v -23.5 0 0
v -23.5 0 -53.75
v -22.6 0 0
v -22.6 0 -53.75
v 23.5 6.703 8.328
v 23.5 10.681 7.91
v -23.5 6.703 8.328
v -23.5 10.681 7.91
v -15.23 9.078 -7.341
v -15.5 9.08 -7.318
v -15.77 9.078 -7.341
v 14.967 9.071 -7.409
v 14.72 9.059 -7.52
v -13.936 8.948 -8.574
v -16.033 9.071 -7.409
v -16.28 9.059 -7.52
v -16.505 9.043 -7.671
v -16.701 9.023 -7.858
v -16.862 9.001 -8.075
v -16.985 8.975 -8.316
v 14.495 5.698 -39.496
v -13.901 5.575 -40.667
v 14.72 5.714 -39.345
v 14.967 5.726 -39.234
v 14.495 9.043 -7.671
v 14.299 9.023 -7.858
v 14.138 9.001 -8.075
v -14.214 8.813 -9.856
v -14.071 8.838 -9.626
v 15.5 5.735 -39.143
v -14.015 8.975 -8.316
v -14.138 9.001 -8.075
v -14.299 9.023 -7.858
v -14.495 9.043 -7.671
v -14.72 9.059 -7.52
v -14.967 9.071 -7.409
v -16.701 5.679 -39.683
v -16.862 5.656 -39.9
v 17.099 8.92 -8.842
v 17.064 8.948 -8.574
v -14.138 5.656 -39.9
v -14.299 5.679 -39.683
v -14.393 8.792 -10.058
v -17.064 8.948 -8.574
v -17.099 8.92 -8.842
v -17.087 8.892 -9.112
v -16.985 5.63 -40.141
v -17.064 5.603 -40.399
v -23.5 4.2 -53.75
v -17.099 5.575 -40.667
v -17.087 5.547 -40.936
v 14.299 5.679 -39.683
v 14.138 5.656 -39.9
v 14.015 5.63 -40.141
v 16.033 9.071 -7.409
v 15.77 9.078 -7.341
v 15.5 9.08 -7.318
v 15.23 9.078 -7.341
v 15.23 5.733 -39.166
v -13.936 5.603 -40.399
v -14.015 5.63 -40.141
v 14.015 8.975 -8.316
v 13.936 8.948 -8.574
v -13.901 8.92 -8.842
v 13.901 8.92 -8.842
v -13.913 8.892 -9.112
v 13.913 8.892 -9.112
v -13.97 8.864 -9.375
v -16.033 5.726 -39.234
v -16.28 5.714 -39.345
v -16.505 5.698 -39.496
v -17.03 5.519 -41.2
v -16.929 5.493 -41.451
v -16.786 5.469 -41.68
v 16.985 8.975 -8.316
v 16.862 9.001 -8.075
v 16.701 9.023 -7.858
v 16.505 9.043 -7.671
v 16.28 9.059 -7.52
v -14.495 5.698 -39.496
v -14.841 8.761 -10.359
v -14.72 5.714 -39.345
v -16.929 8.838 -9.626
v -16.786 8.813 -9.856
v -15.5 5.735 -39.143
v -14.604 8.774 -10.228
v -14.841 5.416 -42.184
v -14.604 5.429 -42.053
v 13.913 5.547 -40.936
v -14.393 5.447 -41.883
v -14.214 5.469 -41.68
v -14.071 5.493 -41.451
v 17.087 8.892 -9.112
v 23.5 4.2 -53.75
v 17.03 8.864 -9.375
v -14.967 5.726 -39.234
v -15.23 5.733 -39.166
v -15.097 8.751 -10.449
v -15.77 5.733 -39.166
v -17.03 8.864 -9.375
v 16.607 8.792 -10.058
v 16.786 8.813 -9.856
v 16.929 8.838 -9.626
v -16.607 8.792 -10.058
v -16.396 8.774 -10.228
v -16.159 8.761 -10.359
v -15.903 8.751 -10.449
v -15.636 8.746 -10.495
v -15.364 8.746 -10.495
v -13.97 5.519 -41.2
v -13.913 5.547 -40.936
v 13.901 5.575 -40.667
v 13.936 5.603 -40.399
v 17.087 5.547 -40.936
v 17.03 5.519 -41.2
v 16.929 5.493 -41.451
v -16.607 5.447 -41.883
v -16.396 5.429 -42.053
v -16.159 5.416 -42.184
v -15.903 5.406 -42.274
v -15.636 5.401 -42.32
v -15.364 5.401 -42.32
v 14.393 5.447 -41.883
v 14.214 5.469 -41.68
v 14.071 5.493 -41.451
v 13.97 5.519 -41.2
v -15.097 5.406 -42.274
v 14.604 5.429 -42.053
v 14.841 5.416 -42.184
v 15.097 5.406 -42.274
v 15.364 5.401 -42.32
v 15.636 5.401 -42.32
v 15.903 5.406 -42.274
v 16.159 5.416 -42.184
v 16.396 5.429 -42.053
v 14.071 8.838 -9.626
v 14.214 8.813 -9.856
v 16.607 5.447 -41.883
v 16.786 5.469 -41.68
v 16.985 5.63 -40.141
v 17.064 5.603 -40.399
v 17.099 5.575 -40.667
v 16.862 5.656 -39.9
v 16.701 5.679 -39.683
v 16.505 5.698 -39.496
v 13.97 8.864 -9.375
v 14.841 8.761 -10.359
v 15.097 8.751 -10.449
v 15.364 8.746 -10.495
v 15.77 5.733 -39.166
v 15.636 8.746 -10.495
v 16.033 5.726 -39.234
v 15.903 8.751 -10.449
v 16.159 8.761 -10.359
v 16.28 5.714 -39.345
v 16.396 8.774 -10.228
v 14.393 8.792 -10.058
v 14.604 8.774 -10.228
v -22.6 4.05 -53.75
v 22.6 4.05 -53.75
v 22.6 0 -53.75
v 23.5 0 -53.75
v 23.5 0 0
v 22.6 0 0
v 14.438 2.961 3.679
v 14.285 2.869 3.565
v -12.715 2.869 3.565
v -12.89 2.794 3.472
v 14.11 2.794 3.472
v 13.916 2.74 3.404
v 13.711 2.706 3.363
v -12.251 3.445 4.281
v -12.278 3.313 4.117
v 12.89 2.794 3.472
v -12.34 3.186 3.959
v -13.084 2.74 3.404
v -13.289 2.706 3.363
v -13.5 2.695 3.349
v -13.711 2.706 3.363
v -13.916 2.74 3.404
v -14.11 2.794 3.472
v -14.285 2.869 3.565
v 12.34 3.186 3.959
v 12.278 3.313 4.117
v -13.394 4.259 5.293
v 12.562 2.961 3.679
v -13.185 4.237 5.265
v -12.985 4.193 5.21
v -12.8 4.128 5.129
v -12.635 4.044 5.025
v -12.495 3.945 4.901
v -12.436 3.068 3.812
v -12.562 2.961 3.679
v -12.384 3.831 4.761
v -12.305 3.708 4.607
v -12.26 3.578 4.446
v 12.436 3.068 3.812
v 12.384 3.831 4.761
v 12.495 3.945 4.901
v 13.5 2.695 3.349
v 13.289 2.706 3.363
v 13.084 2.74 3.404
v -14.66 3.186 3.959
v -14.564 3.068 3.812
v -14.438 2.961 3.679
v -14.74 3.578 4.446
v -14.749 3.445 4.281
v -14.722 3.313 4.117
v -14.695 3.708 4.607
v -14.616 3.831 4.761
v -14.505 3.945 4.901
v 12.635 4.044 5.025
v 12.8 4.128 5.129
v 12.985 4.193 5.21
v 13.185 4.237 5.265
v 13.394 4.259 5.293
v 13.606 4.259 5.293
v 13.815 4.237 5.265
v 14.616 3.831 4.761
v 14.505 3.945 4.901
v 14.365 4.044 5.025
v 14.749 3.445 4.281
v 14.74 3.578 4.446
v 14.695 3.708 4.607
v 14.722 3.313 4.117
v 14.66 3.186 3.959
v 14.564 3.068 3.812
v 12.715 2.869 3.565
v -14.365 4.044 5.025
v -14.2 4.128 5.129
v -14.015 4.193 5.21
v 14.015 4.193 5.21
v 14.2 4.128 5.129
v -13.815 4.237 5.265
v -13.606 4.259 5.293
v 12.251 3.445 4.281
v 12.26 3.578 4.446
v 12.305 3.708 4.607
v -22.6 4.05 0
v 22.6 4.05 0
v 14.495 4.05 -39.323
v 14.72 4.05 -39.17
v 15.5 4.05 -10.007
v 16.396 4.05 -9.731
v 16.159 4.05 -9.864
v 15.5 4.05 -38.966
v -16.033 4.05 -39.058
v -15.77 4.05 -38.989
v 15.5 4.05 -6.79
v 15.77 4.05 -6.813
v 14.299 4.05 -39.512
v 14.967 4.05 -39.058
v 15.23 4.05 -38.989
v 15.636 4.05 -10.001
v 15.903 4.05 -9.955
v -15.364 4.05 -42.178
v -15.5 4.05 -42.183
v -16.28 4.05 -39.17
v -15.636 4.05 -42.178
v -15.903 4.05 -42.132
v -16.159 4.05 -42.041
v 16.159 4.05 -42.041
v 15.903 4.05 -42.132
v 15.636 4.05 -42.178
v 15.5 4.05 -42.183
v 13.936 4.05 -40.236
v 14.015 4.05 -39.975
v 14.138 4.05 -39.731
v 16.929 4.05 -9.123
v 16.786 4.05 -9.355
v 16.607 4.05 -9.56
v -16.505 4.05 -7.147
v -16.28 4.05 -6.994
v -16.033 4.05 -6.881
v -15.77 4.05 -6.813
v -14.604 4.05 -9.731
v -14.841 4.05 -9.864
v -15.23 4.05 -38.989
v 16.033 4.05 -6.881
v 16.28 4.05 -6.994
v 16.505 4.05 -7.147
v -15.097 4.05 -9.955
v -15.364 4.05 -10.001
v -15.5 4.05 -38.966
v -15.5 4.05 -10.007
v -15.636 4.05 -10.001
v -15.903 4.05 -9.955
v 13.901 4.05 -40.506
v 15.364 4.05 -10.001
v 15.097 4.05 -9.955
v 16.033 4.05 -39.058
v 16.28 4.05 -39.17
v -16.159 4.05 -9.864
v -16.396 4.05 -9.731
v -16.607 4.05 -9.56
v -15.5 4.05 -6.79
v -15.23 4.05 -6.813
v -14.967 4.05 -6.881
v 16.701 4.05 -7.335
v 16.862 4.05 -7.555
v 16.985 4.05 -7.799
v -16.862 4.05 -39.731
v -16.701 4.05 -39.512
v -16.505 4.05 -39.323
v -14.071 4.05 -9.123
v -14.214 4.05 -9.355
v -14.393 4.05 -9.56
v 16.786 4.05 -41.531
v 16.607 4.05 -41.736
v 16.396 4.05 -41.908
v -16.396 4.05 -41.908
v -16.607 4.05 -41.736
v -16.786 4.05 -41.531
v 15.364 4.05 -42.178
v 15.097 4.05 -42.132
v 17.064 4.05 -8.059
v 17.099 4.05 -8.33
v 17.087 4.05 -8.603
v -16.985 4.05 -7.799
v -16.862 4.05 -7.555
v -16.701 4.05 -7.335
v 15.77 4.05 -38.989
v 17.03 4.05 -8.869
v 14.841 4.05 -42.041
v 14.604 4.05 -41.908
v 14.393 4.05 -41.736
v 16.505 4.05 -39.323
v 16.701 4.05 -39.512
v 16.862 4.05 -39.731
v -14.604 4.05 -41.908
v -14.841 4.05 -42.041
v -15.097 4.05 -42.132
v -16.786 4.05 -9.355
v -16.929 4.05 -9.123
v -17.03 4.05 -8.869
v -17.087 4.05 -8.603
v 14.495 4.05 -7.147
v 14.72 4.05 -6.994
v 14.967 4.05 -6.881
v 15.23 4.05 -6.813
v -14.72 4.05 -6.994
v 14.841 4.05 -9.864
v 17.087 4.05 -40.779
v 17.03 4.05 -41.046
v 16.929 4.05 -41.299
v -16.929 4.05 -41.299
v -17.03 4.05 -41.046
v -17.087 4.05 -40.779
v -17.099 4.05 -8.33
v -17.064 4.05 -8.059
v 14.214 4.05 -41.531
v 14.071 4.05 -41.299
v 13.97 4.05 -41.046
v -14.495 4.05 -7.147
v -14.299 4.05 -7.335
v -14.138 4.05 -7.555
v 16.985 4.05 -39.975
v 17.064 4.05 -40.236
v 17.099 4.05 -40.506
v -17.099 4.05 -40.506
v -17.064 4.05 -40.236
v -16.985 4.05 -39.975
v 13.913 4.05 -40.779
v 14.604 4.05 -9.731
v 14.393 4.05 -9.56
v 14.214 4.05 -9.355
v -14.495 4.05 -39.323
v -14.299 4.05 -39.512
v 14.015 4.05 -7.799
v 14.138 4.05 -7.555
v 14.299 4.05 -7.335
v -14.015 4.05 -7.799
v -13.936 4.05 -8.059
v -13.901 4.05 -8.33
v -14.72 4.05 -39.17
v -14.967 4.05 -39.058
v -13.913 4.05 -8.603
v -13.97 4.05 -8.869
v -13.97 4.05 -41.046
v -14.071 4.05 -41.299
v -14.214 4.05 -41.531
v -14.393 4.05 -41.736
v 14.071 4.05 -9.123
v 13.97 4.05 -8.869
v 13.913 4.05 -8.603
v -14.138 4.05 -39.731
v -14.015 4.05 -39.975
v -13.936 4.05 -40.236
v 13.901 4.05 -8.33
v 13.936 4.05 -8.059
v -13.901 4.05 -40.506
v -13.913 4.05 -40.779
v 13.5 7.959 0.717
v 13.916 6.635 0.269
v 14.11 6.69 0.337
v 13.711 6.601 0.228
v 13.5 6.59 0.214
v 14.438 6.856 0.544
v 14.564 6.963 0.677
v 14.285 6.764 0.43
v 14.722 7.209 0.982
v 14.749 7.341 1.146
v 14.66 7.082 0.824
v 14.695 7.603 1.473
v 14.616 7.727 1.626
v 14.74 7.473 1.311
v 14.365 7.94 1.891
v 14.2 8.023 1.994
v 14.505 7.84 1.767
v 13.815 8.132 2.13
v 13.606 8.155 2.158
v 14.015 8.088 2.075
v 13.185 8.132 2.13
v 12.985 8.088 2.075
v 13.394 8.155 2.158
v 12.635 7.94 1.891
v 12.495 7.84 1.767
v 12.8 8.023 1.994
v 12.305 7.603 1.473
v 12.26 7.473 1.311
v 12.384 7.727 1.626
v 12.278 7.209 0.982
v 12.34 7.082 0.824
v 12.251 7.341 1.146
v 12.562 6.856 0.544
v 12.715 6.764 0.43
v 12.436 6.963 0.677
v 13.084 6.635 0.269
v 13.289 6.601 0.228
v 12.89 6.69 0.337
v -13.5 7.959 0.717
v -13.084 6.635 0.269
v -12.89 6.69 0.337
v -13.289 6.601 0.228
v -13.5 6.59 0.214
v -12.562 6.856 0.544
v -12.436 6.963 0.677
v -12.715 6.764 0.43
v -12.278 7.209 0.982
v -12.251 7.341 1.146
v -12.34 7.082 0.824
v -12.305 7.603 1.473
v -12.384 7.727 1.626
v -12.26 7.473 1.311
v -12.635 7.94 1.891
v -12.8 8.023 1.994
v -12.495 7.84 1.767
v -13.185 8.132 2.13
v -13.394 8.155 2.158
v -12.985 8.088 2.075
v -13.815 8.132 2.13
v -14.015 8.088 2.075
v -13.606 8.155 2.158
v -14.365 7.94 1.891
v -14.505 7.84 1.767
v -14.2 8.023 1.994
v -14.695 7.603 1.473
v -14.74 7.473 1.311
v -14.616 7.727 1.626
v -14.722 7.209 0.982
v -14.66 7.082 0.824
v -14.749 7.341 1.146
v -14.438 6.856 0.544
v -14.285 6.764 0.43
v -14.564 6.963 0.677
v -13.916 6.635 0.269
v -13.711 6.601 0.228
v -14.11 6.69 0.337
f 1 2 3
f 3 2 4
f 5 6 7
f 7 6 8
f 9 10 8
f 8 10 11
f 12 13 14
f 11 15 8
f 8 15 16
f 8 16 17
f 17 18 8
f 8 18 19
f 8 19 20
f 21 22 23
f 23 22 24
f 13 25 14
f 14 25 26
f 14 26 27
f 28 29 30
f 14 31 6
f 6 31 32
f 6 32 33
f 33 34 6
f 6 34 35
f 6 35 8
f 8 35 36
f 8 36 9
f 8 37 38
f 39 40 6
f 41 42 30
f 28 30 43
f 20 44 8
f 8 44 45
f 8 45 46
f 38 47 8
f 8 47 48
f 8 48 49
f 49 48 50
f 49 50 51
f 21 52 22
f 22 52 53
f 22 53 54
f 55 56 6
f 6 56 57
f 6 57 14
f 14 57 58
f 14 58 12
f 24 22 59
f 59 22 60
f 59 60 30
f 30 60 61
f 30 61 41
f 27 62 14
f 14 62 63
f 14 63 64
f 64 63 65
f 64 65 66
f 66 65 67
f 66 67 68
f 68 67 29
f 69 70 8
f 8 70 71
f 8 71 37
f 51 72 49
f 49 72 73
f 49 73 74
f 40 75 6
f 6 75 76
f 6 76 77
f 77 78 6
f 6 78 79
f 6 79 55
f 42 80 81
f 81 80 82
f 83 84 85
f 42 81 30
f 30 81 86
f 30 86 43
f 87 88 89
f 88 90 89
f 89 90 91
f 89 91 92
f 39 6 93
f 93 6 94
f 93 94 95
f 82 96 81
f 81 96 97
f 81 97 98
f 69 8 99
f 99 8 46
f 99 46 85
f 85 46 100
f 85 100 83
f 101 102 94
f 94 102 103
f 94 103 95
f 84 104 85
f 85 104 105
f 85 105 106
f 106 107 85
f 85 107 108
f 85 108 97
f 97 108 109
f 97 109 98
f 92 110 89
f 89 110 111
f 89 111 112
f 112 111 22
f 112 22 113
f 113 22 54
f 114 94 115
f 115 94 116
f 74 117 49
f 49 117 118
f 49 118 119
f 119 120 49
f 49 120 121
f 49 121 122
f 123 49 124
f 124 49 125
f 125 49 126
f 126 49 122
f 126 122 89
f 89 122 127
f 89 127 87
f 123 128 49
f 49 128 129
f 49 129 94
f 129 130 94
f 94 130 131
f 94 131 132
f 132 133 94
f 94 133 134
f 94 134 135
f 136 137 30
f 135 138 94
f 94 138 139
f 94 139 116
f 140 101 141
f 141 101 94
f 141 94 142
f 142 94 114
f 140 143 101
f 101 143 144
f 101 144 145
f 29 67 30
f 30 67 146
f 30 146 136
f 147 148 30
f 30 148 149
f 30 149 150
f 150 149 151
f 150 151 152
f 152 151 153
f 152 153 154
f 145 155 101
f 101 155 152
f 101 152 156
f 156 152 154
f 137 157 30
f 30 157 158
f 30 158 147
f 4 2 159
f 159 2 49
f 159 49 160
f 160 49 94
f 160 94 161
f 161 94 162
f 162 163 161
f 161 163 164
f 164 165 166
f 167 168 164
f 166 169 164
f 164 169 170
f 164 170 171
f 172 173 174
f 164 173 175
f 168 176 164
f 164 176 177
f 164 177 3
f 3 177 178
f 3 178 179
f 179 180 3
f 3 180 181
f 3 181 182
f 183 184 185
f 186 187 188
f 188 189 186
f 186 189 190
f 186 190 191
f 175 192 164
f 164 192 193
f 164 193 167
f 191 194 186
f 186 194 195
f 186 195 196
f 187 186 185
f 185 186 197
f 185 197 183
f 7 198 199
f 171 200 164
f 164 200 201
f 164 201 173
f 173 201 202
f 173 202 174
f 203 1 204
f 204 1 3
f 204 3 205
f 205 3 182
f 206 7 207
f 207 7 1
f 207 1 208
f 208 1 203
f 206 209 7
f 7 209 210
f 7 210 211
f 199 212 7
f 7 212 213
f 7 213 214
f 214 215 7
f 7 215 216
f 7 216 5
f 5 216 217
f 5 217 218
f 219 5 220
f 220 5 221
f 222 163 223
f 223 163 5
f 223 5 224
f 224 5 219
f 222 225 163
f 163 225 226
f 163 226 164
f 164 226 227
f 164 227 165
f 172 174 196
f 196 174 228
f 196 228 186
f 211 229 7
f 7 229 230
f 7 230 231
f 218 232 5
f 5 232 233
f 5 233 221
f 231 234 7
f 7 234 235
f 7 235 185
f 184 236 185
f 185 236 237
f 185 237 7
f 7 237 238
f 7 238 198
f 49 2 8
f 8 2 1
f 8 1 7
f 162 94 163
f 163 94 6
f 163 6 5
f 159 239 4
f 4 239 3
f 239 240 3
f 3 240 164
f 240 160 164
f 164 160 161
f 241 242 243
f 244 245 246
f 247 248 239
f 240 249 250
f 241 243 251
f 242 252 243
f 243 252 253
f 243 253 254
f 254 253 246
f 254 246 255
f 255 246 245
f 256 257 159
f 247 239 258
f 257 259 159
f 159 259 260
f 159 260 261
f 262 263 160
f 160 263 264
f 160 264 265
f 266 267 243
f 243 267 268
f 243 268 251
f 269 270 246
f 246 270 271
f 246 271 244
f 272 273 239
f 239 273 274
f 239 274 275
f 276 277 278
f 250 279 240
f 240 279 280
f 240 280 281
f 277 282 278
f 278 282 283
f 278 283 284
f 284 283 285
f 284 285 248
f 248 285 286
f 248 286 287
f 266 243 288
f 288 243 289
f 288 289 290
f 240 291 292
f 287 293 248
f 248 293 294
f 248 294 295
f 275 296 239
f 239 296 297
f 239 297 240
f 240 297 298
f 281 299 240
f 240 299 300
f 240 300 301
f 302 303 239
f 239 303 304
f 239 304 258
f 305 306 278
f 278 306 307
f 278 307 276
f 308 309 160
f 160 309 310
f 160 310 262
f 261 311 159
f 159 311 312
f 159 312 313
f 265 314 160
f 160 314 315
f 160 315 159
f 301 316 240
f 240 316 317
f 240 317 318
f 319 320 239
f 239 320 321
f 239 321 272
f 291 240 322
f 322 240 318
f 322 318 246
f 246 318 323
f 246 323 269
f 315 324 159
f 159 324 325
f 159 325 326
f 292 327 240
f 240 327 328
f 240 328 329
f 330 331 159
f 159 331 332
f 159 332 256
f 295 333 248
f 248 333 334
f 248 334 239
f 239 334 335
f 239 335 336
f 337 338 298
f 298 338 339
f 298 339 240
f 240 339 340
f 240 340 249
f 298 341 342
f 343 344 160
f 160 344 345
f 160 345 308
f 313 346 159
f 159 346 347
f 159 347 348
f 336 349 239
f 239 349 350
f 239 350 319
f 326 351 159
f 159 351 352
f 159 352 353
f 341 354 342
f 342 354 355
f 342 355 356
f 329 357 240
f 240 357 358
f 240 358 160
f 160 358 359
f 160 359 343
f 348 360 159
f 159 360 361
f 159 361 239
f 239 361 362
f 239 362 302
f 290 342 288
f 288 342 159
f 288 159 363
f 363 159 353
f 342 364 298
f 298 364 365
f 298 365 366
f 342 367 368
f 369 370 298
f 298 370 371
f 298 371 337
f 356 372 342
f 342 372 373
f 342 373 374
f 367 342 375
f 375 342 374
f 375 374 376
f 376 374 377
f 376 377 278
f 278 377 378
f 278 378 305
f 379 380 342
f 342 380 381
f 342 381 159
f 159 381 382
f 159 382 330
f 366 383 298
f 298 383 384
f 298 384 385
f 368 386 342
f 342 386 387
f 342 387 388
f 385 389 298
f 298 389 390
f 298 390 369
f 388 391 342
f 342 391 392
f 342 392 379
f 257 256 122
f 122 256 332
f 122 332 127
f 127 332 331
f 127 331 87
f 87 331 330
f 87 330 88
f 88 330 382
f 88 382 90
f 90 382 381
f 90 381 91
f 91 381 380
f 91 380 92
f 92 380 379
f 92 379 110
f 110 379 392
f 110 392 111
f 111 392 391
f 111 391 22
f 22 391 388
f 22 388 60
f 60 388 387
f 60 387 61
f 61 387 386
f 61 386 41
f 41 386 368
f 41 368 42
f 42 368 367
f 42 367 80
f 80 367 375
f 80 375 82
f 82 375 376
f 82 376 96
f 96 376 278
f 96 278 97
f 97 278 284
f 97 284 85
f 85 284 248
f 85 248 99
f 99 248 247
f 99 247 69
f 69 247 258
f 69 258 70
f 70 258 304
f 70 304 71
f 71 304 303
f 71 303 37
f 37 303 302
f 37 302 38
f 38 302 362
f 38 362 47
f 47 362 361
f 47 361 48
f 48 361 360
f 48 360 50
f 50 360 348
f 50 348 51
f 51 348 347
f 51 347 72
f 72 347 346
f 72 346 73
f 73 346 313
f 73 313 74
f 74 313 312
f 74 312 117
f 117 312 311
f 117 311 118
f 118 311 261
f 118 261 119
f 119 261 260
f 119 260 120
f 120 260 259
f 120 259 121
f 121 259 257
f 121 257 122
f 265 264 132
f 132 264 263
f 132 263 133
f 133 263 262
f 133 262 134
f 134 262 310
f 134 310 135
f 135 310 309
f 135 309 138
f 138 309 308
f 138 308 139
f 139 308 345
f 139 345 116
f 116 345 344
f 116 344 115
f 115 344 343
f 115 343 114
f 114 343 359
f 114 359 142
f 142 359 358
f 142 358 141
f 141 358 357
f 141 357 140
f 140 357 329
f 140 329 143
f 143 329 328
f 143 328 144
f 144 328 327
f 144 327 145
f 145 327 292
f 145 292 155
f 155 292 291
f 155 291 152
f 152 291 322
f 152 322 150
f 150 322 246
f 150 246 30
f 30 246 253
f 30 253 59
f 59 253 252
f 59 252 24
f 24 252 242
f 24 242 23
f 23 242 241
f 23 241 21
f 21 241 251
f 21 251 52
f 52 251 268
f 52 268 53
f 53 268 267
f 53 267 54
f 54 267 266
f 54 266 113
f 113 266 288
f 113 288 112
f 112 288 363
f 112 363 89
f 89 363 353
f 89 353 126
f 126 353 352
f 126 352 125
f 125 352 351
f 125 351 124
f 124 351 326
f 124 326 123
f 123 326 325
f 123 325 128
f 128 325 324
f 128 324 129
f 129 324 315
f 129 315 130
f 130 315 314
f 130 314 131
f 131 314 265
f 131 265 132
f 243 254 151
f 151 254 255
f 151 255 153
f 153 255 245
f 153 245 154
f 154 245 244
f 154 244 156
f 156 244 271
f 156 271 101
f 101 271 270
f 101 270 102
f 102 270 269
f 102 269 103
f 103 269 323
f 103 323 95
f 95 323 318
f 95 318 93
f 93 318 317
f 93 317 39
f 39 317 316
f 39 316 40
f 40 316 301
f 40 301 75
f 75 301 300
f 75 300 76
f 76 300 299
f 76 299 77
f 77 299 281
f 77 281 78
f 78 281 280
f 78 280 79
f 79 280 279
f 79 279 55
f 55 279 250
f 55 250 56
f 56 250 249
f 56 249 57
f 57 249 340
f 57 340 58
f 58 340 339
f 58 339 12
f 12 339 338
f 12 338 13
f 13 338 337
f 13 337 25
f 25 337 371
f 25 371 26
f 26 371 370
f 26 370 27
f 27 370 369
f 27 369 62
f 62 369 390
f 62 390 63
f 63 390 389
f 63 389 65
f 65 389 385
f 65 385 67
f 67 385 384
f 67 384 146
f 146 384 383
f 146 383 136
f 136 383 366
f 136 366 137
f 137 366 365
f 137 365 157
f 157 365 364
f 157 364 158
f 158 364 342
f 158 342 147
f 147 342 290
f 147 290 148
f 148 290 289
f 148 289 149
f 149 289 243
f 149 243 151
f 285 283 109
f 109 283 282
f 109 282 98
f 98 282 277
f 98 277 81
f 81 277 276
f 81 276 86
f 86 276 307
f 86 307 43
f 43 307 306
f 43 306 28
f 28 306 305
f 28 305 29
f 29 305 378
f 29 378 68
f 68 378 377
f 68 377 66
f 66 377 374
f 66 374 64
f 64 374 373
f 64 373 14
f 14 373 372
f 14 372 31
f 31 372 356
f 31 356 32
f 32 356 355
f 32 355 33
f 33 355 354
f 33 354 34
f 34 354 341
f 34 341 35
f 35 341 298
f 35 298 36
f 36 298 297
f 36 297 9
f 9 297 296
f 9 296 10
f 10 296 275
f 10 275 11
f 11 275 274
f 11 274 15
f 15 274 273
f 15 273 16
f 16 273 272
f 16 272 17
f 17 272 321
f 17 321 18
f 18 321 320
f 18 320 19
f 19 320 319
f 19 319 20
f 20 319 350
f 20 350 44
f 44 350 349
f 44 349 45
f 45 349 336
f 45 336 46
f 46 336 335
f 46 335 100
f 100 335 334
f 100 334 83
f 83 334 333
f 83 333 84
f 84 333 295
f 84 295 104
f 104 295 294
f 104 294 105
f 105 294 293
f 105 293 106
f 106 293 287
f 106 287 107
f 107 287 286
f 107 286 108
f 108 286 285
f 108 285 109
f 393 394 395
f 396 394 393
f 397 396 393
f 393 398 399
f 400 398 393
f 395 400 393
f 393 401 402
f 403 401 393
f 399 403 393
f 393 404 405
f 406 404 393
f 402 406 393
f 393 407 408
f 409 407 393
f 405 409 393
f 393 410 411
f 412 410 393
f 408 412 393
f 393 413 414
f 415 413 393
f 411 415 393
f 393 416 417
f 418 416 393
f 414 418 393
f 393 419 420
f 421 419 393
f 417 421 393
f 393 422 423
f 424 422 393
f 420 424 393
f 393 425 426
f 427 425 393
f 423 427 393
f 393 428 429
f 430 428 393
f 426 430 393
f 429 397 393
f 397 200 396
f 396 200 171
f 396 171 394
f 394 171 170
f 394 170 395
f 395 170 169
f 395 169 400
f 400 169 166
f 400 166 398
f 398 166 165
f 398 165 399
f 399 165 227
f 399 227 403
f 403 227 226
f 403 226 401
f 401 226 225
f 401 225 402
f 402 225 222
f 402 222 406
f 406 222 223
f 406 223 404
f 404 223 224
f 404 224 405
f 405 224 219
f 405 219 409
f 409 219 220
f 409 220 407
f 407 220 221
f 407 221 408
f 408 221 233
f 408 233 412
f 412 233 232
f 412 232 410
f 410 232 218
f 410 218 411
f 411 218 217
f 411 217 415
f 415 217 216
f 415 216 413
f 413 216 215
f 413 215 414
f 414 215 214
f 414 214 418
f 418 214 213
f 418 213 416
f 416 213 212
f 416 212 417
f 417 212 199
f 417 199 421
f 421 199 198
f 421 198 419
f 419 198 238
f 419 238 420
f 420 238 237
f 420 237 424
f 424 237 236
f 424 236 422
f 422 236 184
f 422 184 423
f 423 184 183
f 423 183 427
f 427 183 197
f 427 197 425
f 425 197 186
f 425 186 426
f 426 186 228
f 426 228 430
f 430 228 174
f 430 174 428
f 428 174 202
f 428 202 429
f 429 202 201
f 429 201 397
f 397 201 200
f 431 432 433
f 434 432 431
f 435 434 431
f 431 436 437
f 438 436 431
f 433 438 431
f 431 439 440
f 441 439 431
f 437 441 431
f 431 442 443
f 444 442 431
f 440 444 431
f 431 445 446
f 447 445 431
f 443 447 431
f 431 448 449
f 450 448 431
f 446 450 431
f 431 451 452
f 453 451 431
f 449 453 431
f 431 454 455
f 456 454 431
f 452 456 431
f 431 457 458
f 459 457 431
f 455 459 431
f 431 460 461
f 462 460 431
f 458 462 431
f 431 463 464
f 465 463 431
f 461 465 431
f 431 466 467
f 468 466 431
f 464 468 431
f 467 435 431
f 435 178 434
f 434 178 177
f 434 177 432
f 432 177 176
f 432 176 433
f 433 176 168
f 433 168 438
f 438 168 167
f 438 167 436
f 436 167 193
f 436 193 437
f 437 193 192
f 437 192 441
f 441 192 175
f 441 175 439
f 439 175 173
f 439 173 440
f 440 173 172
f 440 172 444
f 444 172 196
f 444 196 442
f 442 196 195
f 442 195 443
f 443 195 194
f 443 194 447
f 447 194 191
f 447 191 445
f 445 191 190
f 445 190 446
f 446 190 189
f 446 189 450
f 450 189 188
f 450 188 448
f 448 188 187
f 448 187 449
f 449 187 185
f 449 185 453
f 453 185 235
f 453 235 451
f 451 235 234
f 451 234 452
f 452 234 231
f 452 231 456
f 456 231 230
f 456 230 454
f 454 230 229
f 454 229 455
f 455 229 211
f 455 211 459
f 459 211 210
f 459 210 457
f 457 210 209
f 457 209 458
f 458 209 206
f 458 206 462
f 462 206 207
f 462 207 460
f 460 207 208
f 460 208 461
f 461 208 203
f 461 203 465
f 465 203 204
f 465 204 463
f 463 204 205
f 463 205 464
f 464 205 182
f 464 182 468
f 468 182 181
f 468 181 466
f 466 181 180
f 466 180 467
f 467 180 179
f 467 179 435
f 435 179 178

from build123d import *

# Parameters (mm, degrees)
BOSS_EXTRU_1_DEPTH                            = 23.5
BOSS_EXTRU_1_DEPTH_BACK                       = 23.5
ESQUISSE2_W                                   = 45.2
ESQUISSE2_H                                   = 53.75
ENL_V_MAT_EXTRU_1_DEPTH                       = 4.05
ENL_V_MAT_EXTRU_2_REACH                       = 60.542
ESQUISSE3_R                                   = 1.6
TROU_POUR_TARAUDAGE_POUR_TROU_TARAUD_M3_D     = 2.5
TROU_POUR_TARAUDAGE_POUR_TROU_TARAUD_M3_DEPTH = 5
TROU_POUR_TARAUDAGE_POUR_TROU_TARAUD_M3_TIP   = 0.751075774


with BuildPart() as part:
    # Esquisse1 → Boss.-Extru.1 (new, two sides: drawn at the far end of the back side and taken through both)
    with BuildSketch(Plane(origin=(0, 0, 0), x_dir=(0, 0, -1), z_dir=(1, 0, 0)).offset(-BOSS_EXTRU_1_DEPTH_BACK)):
        Polygon((53.75, 4.2), (-7.910357513, 10.680764723), (-8.328471366, 6.702677141), (0, 0), (53.75, 0), align=None)
    extrude(amount=BOSS_EXTRU_1_DEPTH + BOSS_EXTRU_1_DEPTH_BACK)

    # Esquisse2 → Enlèv. mat.-Extru.1 (cut)
    with BuildSketch(Plane.XZ):
        with Locations((0, -26.875)):
            Rectangle(ESQUISSE2_W, ESQUISSE2_H)
    extrude(amount=-ENL_V_MAT_EXTRU_1_DEPTH, mode=Mode.SUBTRACT)

    # Enlèv. mat.-Extru.2: up to this plane
    enl_v_mat_extru_2_end = Plane(origin=(0, 4.05, 0), z_dir=(0, -1, 0))
    # Esquisse3 → Enlèv. mat.-Extru.2 (cut, up to the surface)
    with BuildSketch(Plane(origin=(0, 9.741736652, -1.023897781), x_dir=(1, 0, 0), z_dir=(0, 0.9945218953682741, -0.10452846326764641)), mode=Mode.PRIVATE) as enl_v_mat_extru_2_sk1:
        with Locations(Location((-15.5, 39.929033745, 0), (0, 0, 270))):
            Circle(ESQUISSE3_R)
    enl_v_mat_extru_2_tool1 = split(extrude(enl_v_mat_extru_2_sk1.sketch, amount=-ENL_V_MAT_EXTRU_2_REACH, mode=Mode.PRIVATE), bisect_by=enl_v_mat_extru_2_end, keep=Keep.BOTH, mode=Mode.PRIVATE)
    add(enl_v_mat_extru_2_tool1.solids().sort_by_distance((-15.5, 5.568016, -40.734196))[0], mode=Mode.SUBTRACT)
    # Esquisse3 → Enlèv. mat.-Extru.2 (cut, up to the surface)
    with BuildSketch(Plane(origin=(0, 9.741736652, -1.023897781), x_dir=(1, 0, 0), z_dir=(0, 0.9945218953682741, -0.10452846326764641)), mode=Mode.PRIVATE) as enl_v_mat_extru_2_sk2:
        with Locations(Location((15.5, 39.929033745, 0), (0, 0, 270))):
            Circle(ESQUISSE3_R)
    enl_v_mat_extru_2_tool2 = split(extrude(enl_v_mat_extru_2_sk2.sketch, amount=-ENL_V_MAT_EXTRU_2_REACH, mode=Mode.PRIVATE), bisect_by=enl_v_mat_extru_2_end, keep=Keep.BOTH, mode=Mode.PRIVATE)
    add(enl_v_mat_extru_2_tool2.solids().sort_by_distance((15.5, 5.568016, -40.734196))[0], mode=Mode.SUBTRACT)
    # Esquisse3 → Enlèv. mat.-Extru.2 (cut, up to the surface)
    with BuildSketch(Plane(origin=(0, 9.741736652, -1.023897781), x_dir=(1, 0, 0), z_dir=(0, 0.9945218953682741, -0.10452846326764641)), mode=Mode.PRIVATE) as enl_v_mat_extru_2_sk3:
        with Locations(Location((15.5, 7.929033745, 0), (0, 0, 270))):
            Circle(ESQUISSE3_R)
    enl_v_mat_extru_2_tool3 = split(extrude(enl_v_mat_extru_2_sk3.sketch, amount=-ENL_V_MAT_EXTRU_2_REACH, mode=Mode.PRIVATE), bisect_by=enl_v_mat_extru_2_end, keep=Keep.BOTH, mode=Mode.PRIVATE)
    add(enl_v_mat_extru_2_tool3.solids().sort_by_distance((15.5, 8.912927, -8.909495))[0], mode=Mode.SUBTRACT)
    # Esquisse3 → Enlèv. mat.-Extru.2 (cut, up to the surface)
    with BuildSketch(Plane(origin=(0, 9.741736652, -1.023897781), x_dir=(1, 0, 0), z_dir=(0, 0.9945218953682741, -0.10452846326764641)), mode=Mode.PRIVATE) as enl_v_mat_extru_2_sk4:
        with Locations(Location((-15.5, 7.929033745, 0), (0, 0, 270))):
            Circle(ESQUISSE3_R)
    enl_v_mat_extru_2_tool4 = split(extrude(enl_v_mat_extru_2_sk4.sketch, amount=-ENL_V_MAT_EXTRU_2_REACH, mode=Mode.PRIVATE), bisect_by=enl_v_mat_extru_2_end, keep=Keep.BOTH, mode=Mode.PRIVATE)
    add(enl_v_mat_extru_2_tool4.solids().sort_by_distance((-15.5, 8.912927, -8.909495))[0], mode=Mode.SUBTRACT)

    # Trou pour taraudage pour trou taraudé M31
    with Locations(Plane(origin=(0, 0, 0), x_dir=(-1, 0, 0), z_dir=(0, -0.779044883952261, 0.6269681561194383))):
        with Locations((13.5, -5.548250916), (-13.5, -5.548250916)):
            Hole(TROU_POUR_TARAUDAGE_POUR_TROU_TARAUD_M3_D / 2, depth=TROU_POUR_TARAUDAGE_POUR_TROU_TARAUD_M3_DEPTH)
            with Locations((0, 0, -(TROU_POUR_TARAUDAGE_POUR_TROU_TARAUD_M3_DEPTH + TROU_POUR_TARAUDAGE_POUR_TROU_TARAUD_M3_TIP / 2))):  # 118° drill point
                Cone(0, TROU_POUR_TARAUDAGE_POUR_TROU_TARAUD_M3_D / 2, TROU_POUR_TARAUDAGE_POUR_TROU_TARAUD_M3_TIP, mode=Mode.SUBTRACT)


solid = part.part
